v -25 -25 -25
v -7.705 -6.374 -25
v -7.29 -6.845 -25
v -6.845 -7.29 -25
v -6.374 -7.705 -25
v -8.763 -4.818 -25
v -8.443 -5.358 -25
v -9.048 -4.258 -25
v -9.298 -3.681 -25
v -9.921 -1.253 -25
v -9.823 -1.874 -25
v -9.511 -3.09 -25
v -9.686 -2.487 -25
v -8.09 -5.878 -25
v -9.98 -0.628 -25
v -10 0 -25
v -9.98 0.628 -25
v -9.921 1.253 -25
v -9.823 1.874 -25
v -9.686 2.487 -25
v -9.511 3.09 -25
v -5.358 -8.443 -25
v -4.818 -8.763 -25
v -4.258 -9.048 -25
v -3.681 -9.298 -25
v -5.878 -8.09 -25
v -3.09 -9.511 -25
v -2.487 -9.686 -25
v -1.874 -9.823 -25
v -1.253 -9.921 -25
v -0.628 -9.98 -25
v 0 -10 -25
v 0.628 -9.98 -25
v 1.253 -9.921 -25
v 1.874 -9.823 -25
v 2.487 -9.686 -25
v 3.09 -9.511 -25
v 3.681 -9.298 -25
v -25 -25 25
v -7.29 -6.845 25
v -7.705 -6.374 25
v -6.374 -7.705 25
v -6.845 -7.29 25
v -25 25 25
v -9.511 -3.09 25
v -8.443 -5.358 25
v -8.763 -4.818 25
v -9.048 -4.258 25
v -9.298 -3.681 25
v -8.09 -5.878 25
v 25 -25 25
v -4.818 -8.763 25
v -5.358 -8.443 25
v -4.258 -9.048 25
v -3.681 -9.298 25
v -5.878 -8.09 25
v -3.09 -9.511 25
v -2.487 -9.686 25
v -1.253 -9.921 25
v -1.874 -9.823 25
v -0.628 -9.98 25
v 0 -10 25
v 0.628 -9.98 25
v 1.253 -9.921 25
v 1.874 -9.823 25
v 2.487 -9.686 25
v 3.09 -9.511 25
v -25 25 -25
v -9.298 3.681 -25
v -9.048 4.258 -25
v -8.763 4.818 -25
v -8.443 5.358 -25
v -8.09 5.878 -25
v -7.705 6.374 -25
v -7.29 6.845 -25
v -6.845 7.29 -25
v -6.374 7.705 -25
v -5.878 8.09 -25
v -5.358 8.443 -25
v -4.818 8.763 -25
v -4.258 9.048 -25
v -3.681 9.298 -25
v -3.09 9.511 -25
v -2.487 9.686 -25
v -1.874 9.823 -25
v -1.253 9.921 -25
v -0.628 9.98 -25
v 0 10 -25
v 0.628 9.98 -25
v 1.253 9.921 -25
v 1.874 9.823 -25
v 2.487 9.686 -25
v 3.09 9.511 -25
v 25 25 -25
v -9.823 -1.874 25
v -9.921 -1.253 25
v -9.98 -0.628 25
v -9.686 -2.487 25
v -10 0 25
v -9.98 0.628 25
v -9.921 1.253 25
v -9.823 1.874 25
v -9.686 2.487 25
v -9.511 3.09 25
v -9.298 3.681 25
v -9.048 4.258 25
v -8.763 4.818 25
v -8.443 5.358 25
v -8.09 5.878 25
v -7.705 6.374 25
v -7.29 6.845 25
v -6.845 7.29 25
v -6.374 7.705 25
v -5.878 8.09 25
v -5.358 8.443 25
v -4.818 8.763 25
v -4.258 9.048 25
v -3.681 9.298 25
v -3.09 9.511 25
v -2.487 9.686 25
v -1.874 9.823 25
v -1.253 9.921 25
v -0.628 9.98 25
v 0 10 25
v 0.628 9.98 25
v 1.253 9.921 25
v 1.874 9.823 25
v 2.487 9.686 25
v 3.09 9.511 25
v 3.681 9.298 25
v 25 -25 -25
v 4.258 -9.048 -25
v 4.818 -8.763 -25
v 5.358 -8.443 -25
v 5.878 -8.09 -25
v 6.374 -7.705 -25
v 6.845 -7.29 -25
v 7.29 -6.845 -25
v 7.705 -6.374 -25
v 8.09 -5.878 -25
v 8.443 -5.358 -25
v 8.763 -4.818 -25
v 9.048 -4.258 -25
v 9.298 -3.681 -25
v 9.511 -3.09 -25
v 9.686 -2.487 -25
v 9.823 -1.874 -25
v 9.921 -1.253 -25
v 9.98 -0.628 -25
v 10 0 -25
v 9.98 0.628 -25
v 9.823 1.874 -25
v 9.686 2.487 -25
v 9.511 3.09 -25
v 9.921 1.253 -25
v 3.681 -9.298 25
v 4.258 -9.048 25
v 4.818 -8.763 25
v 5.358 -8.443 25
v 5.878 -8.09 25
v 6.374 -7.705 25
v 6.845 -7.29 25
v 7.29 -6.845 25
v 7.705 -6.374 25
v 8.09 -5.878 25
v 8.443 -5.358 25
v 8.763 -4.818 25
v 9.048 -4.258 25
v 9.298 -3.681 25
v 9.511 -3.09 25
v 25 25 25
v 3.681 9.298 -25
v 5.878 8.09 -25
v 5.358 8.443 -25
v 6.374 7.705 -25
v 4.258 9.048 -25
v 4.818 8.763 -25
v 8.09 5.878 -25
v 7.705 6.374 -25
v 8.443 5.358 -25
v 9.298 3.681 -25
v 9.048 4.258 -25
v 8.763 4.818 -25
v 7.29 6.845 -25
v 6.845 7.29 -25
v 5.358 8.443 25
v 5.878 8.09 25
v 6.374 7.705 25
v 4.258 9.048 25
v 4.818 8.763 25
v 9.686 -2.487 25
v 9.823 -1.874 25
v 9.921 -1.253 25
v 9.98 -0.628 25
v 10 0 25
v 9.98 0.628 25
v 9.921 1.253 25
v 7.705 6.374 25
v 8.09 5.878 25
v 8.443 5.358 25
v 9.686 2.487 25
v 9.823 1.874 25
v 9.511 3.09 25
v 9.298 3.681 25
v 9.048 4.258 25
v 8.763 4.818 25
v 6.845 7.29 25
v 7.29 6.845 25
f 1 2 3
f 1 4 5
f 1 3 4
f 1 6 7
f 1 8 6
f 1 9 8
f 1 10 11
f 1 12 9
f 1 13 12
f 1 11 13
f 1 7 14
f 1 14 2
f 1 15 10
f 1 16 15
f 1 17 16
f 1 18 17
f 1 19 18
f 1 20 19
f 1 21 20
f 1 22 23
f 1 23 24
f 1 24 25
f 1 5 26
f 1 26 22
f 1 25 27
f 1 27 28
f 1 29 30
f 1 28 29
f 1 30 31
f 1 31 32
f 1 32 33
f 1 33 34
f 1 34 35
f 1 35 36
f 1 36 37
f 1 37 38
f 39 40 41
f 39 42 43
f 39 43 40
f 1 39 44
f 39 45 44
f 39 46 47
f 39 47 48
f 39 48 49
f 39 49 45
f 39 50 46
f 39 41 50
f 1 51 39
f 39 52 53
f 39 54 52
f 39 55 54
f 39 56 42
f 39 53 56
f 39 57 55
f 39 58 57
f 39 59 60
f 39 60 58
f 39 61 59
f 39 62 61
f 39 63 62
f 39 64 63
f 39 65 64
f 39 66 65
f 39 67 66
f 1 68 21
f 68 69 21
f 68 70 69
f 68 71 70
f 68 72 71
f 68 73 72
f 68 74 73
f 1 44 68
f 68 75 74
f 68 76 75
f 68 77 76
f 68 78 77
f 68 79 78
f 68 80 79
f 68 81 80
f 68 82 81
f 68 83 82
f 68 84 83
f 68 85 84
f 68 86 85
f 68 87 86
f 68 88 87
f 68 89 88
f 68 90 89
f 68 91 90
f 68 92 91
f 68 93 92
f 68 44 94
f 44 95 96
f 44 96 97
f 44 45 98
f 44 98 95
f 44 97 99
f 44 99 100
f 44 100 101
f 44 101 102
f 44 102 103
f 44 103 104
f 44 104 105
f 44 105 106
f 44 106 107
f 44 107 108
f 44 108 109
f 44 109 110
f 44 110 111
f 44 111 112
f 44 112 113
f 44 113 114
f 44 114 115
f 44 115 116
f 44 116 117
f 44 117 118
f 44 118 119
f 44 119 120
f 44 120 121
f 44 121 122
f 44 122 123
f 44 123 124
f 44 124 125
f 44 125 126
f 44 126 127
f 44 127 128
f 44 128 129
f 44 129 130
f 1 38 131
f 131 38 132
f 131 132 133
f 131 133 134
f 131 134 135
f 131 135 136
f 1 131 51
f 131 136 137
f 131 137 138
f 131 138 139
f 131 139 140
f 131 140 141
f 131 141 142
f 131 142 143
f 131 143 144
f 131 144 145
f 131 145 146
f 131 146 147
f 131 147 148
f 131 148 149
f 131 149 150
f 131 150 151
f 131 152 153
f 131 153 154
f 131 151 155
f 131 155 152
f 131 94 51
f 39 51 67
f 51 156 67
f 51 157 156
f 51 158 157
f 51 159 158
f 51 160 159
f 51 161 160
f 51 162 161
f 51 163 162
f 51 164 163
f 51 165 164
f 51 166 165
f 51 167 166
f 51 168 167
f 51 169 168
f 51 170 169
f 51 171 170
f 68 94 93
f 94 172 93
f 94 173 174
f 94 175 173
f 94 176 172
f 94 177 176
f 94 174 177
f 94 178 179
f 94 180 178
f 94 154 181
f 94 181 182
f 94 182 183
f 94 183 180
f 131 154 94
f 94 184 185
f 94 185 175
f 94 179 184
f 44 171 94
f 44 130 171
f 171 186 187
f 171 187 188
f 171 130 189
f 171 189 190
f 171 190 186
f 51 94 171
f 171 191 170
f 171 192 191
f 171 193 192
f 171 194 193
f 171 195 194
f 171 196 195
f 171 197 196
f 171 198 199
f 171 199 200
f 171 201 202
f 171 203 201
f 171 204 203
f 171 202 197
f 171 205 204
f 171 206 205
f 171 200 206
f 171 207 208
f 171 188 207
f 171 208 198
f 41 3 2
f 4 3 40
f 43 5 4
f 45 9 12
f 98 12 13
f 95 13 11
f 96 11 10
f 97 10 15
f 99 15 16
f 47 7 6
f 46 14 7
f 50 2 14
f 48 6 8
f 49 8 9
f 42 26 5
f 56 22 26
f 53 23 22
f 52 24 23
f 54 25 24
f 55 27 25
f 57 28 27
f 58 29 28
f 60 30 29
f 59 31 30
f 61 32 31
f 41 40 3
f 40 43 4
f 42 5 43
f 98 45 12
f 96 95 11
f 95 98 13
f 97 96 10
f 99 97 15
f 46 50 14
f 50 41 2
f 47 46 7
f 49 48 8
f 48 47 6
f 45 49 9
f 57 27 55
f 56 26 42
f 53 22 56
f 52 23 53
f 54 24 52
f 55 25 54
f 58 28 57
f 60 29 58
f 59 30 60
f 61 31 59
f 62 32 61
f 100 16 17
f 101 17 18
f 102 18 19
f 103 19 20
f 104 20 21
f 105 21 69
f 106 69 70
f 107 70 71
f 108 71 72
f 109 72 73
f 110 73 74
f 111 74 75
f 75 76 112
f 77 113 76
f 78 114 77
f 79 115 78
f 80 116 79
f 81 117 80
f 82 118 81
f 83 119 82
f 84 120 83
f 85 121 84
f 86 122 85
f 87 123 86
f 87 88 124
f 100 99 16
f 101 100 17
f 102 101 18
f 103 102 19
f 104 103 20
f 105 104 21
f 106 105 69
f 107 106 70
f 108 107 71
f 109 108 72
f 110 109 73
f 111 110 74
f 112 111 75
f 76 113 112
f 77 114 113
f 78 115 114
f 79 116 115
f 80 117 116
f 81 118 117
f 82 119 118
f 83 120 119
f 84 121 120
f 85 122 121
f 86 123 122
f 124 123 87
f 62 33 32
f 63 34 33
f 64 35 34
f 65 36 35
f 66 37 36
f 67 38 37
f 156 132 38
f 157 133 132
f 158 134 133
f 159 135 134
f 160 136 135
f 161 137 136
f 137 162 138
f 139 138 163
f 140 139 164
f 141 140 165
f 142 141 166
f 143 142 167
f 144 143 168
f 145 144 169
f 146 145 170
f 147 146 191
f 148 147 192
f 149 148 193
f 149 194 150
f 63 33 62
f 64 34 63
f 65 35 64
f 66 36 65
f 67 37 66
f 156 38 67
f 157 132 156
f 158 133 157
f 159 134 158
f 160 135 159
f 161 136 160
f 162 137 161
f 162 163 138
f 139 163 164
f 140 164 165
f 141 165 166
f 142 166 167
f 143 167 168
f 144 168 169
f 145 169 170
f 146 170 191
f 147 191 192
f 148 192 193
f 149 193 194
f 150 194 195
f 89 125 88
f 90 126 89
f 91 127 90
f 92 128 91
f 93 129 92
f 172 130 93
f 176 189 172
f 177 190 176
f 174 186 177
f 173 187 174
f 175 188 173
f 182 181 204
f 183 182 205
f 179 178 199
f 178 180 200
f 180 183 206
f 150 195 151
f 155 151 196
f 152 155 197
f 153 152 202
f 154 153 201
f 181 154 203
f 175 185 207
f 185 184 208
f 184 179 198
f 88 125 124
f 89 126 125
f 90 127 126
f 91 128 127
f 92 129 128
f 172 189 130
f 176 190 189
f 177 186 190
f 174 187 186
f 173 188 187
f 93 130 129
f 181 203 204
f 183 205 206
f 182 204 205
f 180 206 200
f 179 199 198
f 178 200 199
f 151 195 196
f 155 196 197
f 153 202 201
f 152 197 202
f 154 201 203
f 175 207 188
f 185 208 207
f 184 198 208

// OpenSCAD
// 50mm 角の立方体の中央に直径20mmの貫通穴（z軸方向）を開ける

difference() {
    cube([50, 50, 50], center = true);
    // 十分な高さを持たせて貫通させる
    cylinder(h = 60, d = 20, center = true, $fn = 100);
}
